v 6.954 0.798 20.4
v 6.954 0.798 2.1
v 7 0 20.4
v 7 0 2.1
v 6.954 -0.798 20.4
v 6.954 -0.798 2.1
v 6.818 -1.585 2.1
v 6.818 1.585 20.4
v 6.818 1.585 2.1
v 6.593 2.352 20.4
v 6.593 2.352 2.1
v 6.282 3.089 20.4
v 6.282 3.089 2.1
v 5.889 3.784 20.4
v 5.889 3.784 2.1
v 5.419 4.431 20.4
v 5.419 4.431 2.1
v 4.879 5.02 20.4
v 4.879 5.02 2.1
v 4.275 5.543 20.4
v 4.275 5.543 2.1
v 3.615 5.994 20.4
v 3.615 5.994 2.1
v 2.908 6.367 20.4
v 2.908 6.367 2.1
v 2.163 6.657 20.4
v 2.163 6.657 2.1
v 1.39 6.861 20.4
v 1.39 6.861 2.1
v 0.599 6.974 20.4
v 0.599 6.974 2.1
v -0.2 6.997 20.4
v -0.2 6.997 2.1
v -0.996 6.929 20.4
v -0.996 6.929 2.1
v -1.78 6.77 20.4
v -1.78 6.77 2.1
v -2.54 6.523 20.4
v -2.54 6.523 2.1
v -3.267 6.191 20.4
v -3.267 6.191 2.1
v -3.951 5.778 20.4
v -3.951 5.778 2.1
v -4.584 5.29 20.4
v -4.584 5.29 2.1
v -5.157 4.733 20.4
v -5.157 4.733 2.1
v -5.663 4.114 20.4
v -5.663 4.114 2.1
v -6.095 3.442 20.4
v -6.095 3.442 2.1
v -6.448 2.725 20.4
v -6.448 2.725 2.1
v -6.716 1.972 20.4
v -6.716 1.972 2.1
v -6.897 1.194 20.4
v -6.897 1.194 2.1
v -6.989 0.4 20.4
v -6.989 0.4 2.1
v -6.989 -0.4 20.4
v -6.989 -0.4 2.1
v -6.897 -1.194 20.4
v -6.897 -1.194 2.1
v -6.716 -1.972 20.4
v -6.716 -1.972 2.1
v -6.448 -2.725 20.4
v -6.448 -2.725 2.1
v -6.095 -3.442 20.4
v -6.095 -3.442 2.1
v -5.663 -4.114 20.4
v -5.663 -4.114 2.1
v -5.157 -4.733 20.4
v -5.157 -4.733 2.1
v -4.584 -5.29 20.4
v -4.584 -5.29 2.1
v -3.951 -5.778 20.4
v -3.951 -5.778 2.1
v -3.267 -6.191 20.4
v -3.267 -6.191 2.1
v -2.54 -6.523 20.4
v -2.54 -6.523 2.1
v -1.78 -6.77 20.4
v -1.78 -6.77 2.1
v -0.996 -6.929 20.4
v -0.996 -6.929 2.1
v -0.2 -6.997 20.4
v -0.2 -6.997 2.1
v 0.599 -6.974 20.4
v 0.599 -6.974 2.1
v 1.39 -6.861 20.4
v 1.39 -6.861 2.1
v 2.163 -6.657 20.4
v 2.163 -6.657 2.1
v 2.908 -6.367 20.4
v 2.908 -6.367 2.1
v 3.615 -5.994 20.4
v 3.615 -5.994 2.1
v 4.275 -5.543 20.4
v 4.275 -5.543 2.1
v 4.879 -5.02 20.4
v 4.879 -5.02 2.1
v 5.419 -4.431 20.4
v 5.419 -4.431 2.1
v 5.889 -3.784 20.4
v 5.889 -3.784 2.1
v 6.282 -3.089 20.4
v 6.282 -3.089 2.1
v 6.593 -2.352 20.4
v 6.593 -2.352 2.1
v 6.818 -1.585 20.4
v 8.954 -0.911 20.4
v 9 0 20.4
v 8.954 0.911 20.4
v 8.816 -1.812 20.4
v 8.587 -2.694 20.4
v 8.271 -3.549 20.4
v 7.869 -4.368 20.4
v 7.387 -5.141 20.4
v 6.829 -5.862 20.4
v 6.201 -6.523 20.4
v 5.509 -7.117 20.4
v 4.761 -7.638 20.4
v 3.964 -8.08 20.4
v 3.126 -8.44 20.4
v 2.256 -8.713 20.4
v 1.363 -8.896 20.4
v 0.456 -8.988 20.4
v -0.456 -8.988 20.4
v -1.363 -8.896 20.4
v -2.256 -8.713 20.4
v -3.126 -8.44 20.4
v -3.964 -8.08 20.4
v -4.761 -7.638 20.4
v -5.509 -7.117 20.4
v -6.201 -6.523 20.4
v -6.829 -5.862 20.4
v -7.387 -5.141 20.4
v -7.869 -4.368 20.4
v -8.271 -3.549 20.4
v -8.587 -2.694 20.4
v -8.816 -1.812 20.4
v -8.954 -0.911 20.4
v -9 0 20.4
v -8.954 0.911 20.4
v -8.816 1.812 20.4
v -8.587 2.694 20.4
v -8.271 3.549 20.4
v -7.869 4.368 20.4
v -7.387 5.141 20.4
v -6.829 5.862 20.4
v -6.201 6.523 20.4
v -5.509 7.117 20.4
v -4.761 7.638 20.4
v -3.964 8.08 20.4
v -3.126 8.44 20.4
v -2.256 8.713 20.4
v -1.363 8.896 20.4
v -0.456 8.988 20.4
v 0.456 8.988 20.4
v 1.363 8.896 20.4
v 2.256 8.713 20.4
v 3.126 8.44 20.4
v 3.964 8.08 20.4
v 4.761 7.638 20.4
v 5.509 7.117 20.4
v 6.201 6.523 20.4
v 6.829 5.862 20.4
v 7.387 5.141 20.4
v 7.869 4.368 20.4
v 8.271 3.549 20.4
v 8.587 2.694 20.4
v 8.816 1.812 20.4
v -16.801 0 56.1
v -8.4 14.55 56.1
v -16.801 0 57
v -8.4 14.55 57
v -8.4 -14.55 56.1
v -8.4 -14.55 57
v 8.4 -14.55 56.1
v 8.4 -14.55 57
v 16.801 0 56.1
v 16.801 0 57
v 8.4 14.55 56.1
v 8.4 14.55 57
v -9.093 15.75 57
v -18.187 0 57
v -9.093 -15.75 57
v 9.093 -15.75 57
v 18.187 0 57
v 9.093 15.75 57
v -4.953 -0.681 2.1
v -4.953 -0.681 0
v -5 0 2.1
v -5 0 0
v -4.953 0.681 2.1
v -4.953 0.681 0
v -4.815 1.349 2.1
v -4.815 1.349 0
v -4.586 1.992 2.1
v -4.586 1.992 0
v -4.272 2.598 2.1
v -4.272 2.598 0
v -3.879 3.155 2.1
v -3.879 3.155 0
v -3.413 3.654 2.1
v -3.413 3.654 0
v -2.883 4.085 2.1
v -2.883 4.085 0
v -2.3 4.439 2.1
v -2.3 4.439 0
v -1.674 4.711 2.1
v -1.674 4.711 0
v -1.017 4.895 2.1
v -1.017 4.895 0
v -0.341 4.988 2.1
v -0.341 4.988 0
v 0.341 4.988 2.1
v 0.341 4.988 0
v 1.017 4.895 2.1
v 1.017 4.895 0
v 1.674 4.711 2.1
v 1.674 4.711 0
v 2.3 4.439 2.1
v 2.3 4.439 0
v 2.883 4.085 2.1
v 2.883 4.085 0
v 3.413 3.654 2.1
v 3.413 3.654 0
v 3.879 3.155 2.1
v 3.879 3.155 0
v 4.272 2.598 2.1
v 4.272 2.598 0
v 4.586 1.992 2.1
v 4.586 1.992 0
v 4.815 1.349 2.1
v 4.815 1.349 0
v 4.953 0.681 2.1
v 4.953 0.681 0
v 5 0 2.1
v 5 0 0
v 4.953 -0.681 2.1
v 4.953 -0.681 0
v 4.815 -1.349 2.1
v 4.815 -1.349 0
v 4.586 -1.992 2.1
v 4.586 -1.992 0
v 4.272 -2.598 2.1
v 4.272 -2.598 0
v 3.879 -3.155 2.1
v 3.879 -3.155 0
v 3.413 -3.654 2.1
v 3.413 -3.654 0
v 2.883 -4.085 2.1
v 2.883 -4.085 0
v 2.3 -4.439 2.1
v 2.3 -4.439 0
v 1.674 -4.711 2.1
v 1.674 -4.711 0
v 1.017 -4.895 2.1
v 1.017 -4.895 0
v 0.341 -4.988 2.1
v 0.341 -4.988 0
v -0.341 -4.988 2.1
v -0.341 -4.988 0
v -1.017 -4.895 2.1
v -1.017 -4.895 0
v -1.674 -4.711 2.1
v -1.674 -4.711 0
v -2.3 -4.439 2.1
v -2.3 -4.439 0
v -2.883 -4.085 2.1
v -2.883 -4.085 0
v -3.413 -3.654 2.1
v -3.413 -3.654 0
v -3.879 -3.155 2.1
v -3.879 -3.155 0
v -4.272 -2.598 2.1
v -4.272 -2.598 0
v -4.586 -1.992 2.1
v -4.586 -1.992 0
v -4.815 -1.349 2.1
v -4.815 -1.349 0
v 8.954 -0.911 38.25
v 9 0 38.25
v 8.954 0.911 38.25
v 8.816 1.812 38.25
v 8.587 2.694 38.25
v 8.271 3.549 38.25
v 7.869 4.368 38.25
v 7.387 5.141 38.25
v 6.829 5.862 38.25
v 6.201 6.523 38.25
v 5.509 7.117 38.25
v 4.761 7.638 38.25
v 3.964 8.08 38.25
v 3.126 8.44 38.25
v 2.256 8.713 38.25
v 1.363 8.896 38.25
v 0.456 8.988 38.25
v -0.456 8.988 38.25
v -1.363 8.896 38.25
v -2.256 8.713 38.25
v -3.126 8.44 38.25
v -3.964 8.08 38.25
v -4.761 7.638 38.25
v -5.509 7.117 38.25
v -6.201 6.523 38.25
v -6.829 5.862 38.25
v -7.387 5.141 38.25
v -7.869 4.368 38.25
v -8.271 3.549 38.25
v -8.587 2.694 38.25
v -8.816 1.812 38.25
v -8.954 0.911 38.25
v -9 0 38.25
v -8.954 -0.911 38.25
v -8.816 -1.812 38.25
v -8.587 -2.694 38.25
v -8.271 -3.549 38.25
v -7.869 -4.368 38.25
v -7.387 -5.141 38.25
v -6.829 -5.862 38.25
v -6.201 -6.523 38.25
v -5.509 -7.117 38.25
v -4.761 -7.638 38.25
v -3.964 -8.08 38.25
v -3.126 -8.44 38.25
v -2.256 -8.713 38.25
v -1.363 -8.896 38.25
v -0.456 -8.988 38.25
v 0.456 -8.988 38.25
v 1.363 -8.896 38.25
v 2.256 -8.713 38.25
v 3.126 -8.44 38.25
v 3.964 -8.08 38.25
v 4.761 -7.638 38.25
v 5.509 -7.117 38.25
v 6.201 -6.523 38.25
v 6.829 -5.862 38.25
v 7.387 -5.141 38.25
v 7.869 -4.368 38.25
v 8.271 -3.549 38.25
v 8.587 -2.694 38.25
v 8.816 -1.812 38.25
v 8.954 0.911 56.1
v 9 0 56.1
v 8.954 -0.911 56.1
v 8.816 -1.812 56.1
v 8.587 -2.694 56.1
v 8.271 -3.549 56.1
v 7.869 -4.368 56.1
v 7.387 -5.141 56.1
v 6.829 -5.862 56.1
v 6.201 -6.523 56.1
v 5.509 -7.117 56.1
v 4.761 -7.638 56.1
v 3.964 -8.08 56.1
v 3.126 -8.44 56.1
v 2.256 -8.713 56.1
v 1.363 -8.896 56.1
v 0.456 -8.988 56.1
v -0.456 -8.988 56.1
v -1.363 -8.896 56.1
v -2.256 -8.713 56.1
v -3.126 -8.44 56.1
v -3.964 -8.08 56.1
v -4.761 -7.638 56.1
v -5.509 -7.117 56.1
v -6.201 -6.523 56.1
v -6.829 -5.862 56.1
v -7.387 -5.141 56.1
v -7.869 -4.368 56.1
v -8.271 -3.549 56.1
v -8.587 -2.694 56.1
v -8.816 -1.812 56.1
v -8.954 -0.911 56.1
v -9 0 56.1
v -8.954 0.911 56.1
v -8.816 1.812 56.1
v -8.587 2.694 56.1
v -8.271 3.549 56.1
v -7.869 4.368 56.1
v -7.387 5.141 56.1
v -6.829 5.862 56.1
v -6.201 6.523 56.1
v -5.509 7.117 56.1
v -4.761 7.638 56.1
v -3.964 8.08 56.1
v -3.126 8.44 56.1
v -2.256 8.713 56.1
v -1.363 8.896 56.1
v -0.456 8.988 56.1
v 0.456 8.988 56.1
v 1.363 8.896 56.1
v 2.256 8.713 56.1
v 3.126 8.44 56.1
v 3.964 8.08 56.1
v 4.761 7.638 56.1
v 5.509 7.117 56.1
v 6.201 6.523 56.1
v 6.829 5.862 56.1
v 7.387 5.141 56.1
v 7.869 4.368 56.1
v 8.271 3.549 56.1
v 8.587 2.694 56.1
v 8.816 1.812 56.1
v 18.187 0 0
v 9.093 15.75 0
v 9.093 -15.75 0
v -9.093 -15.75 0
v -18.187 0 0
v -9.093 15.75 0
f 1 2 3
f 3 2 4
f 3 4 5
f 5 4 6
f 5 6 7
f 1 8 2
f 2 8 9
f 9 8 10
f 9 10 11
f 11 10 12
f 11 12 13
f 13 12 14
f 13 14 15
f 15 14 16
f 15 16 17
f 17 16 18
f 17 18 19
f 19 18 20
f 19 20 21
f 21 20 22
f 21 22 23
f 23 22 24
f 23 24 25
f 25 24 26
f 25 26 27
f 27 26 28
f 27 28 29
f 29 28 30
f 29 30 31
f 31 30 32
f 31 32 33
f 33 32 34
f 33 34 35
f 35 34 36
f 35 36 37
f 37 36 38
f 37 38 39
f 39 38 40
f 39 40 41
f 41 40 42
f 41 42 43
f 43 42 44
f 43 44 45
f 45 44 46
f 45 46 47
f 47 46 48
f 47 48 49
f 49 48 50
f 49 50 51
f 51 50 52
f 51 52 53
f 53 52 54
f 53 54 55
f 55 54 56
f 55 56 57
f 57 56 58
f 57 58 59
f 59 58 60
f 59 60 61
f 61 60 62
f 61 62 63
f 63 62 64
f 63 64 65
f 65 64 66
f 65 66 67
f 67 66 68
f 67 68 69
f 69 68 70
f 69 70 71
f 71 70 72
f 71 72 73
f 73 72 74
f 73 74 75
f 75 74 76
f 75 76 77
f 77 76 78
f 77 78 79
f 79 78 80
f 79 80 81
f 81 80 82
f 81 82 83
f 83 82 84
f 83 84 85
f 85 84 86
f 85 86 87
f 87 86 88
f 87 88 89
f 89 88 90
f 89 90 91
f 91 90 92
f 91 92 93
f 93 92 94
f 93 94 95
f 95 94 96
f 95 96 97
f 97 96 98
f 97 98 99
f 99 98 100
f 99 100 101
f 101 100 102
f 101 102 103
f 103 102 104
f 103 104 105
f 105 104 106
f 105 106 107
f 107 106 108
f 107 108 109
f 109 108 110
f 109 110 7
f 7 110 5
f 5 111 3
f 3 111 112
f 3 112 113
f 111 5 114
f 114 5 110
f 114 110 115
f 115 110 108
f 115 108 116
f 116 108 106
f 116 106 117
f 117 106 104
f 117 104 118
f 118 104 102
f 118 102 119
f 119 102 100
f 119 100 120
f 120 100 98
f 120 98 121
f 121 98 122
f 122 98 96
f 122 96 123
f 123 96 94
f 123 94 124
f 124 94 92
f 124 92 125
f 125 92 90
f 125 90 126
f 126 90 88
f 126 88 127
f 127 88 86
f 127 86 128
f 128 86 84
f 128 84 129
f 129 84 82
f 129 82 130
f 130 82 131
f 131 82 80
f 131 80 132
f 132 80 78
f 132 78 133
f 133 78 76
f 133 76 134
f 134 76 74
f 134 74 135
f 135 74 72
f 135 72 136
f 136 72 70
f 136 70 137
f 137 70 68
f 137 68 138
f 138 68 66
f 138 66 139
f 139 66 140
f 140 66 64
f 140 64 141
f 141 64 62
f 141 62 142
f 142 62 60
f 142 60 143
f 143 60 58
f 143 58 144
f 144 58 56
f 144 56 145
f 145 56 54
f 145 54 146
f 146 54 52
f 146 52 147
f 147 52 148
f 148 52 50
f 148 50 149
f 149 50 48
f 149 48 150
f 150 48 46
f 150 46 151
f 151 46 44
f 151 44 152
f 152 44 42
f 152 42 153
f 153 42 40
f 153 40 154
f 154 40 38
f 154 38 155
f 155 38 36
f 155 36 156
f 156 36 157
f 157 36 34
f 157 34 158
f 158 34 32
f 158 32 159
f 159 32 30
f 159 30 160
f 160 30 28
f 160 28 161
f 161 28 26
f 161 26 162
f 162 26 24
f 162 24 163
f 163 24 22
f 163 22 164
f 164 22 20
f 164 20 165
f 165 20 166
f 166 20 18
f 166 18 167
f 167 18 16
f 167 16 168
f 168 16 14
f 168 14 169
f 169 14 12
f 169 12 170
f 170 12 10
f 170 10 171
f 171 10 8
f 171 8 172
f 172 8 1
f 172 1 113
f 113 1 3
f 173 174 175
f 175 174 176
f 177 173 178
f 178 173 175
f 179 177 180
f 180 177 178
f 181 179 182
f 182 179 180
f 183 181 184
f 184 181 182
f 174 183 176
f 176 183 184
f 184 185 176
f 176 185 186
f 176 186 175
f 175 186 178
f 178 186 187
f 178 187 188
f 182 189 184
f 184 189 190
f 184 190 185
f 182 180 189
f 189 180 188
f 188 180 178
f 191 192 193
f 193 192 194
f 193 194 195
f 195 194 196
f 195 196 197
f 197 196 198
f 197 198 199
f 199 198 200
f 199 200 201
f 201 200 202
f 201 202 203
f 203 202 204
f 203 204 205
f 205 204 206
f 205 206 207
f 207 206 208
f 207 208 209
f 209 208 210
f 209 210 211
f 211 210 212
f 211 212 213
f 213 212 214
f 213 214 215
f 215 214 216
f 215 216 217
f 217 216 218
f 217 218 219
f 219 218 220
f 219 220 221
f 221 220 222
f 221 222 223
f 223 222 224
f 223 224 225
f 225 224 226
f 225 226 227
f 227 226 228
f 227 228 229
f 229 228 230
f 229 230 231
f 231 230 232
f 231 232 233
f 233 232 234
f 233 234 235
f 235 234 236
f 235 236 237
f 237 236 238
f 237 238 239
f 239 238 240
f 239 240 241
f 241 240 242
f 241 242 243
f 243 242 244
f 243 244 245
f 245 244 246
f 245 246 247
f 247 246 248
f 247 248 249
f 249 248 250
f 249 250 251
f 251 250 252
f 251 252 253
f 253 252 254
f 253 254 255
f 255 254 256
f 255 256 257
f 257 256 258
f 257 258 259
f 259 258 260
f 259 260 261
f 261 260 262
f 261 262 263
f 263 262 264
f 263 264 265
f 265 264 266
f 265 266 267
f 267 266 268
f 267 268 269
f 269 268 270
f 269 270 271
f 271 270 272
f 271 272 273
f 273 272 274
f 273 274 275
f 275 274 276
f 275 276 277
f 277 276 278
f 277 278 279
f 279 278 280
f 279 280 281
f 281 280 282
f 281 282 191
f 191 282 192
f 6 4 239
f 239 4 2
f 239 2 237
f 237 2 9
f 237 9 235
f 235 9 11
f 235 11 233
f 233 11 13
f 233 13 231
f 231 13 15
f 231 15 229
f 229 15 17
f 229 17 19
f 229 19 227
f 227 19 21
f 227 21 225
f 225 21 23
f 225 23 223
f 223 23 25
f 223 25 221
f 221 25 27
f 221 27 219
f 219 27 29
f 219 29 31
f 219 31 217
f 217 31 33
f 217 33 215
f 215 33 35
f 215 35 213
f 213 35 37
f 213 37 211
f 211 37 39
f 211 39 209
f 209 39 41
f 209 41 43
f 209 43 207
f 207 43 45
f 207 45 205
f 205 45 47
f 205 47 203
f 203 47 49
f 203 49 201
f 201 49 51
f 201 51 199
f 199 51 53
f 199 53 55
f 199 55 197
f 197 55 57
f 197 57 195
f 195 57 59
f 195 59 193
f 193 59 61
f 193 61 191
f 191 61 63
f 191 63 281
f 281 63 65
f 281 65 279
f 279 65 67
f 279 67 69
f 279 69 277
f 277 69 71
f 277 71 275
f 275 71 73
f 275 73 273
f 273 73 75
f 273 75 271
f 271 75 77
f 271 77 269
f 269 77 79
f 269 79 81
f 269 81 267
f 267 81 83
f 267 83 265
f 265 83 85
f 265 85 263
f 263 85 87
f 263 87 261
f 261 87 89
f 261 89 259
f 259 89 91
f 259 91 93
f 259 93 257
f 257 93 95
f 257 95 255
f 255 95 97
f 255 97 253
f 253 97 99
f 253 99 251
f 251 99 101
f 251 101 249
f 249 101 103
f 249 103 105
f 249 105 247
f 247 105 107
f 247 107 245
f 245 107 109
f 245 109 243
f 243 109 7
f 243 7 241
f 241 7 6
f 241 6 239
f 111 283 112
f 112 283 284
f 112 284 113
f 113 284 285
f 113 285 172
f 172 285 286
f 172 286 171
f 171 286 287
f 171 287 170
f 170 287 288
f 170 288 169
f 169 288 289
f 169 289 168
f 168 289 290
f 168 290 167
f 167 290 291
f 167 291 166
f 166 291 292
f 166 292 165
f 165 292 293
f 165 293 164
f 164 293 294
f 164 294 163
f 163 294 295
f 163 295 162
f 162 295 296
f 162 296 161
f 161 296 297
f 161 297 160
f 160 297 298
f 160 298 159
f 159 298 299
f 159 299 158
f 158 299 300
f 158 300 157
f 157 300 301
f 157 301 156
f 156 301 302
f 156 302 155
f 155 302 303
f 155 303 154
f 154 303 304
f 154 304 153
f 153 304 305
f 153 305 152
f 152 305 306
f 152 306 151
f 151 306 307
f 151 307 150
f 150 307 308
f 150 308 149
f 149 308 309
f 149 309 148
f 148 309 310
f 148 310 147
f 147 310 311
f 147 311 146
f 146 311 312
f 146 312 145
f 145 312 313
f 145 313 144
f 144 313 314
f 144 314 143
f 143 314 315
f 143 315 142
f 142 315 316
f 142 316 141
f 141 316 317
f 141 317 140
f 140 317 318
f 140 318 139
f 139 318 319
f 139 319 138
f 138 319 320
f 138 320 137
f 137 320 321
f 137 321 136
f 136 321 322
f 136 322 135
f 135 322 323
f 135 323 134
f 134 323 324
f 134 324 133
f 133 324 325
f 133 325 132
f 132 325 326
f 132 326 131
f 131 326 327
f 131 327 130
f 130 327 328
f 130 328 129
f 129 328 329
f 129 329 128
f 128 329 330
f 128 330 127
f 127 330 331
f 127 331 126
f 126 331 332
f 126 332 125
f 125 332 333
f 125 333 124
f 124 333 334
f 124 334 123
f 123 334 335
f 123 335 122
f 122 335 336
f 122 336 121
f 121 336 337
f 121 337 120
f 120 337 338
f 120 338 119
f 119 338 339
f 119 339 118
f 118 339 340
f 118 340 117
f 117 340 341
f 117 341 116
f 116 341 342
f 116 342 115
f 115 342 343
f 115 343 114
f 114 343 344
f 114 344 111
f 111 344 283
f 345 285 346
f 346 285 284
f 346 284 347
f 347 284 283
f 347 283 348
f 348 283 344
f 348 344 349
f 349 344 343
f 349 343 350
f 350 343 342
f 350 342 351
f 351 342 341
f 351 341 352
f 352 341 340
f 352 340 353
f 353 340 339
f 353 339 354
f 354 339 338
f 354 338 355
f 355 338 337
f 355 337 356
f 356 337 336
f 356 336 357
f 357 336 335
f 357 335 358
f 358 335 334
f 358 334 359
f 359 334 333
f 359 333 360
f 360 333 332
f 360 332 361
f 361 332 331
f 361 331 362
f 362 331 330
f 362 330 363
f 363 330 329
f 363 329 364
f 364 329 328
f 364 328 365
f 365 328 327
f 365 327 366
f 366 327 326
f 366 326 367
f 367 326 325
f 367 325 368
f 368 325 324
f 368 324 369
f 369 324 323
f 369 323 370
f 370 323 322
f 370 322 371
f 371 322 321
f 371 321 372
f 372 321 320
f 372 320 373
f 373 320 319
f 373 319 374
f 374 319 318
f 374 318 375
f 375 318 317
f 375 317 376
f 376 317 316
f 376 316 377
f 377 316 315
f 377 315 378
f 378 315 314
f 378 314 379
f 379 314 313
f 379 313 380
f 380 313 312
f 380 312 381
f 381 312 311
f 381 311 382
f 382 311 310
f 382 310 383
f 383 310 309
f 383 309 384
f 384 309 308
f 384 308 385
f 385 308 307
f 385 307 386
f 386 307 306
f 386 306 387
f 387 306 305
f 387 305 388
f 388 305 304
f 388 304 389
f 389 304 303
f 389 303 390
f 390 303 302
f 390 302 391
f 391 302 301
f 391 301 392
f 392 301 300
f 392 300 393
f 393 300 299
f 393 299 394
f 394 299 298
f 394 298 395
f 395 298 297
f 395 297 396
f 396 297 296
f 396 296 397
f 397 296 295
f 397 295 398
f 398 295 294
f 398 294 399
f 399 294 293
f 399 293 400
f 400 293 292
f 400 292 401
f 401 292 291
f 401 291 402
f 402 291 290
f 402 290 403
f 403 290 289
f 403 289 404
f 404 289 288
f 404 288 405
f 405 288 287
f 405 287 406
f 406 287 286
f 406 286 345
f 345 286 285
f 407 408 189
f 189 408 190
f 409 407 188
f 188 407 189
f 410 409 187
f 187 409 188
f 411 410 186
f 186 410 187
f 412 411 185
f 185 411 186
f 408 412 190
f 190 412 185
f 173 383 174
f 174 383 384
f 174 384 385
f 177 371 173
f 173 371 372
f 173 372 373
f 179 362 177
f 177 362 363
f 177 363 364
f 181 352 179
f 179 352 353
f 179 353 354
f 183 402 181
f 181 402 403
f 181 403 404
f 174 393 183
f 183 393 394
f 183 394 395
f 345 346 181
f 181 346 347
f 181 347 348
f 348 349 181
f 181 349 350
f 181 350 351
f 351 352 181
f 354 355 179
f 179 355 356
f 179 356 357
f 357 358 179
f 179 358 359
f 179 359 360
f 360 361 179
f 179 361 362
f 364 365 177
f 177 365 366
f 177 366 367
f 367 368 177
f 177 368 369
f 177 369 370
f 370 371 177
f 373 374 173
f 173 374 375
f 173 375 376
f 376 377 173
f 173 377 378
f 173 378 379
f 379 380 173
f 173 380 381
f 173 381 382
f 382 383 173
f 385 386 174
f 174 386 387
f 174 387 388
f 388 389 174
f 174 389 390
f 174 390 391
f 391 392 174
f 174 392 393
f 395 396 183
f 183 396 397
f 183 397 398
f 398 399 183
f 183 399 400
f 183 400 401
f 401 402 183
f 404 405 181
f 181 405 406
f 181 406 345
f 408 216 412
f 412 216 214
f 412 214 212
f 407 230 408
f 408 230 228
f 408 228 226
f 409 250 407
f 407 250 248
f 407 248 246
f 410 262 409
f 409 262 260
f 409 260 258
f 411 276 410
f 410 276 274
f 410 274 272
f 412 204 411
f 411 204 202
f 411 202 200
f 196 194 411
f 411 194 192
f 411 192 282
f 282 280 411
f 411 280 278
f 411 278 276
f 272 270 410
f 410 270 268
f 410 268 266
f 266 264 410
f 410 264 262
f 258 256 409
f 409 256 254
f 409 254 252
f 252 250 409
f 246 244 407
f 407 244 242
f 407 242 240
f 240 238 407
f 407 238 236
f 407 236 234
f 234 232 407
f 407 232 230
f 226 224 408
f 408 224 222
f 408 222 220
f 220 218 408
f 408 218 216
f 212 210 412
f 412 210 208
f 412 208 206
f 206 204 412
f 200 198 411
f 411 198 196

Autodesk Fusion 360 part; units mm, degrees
sketch "Sketch1" plane through (0, 0, 0) normal (0, 0, 1) x (1, 0, 0)
  line L0 (-9.0933, 15.75) -> (-18.1865, 0)
  line L1 (-18.1865, 0) -> (-9.0933, -15.75)
  line L2 (-9.0933, -15.75) -> (9.0933, -15.75)
  line L3 (9.0933, -15.75) -> (18.1865, 0)
  line L4 (18.1865, 0) -> (9.0933, 15.75)
  line L5 (9.0933, 15.75) -> (-9.0933, 15.75)
  dimension "d8" = 31.5
extrude "Extrude1" add sketch "Sketch1" along normal blind 56.1
sketch "Sketch3" plane through (0, 0, 56.1) normal (0, 0, 1) x (-1, 0, 0)
  line L0 (-9.0933, -15.75) -> (9.0933, -15.75)
  line L1 (9.0933, -15.75) -> (18.1865, 0)
  line L2 (18.1865, 0) -> (9.0933, 15.75)
  line L3 (9.0933, 15.75) -> (-9.0933, 15.75)
  line L4 (-9.0933, 15.75) -> (-18.1865, 0)
  line L5 (-18.1865, 0) -> (-9.0933, -15.75)
hole "Hole1" at (0, 0, 56.1) direction (0, 0, -1) diameter 18 end through all
sketch "Sketch4" plane through (0, 0, 0) normal (0, 0, -1) x (1, 0, 0)
  circle A0 centre (0, 0) radius 9
  line L0 (-9.0933, -15.75) -> (9.0933, -15.75)
  line L1 (9.0933, -15.75) -> (18.1865, 0)
  line L2 (18.1865, 0) -> (9.0933, 15.75)
  line L3 (9.0933, 15.75) -> (-9.0933, 15.75)
  line L4 (-9.0933, 15.75) -> (-18.1865, 0)
  line L5 (-18.1865, 0) -> (-9.0933, -15.75)
  circle A1 centre (0, 0) radius 9
  circle A2 centre (0, 0) radius 5
  dimension "d12" = 10
extrude "Extrude3" add sketch "Sketch4" against normal blind 2.1 contours A0 A1
sketch "Sketch5" plane through (0, 0, 56.1) normal (0, 0, 1) x (-1, 0, 0)
  circle A0 centre (0, 0) radius 9
  line L0 (-9.0933, -15.75) -> (9.0933, -15.75)
  line L1 (9.0933, -15.75) -> (18.1865, 0)
  line L2 (18.1865, 0) -> (9.0933, 15.75)
  line L3 (9.0933, 15.75) -> (-9.0933, 15.75)
  line L4 (-9.0933, 15.75) -> (-18.1865, 0)
  line L5 (-18.1865, 0) -> (-9.0933, -15.75)
  line L6 (8.4004, -14.55) -> (16.8009, 0)
  line L7 (16.8009, 0) -> (8.4004, 14.55)
  line L8 (8.4004, 14.55) -> (-8.4004, 14.55)
  line L9 (-8.4004, 14.55) -> (-16.8009, 0)
  line L10 (-16.8009, 0) -> (-8.4004, -14.55)
  line L11 (-8.4004, -14.55) -> (8.4004, -14.55)
  dimension "d15" = 29.1
extrude "Extrude4" add sketch "Sketch5" along normal blind 0.9 contours L0 L1 L2 L3 L4 L5
sketch "Sketch6" plane through (0, 0, 0) normal (0, 0, -1) x (-1, 0, 0)
  line L0 (8.4004, -14.55) -> (-8.4004, -14.55)
  line L1 (-8.4004, -14.55) -> (-16.8009, 0)
  line L2 (-16.8009, 0) -> (-8.4004, 14.55)
  line L3 (-8.4004, 14.55) -> (8.4004, 14.55)
  line L4 (8.4004, 14.55) -> (16.8009, 0)
  line L5 (16.8009, 0) -> (8.4004, -14.55)
  line L6 (-18.1865, 0) -> (-9.0933, -15.75)
  line L7 (-9.0933, -15.75) -> (9.0933, -15.75)
  line L8 (9.0933, -15.75) -> (18.1865, 0)
  line L9 (18.1865, 0) -> (9.0933, 15.75)
  line L10 (9.0933, 15.75) -> (-9.0933, 15.75)
  line L11 (-9.0933, 15.75) -> (-18.1865, 0)
  circle A0 centre (0, 0) radius 7
  circle A1 centre (0, 0) radius 9
  circle A2 centre (0, 0) radius 5
  line L12 (9.0933, 15.75) -> (-9.0933, 15.75)
  line L13 (-9.0933, 15.75) -> (-18.1865, 0)
  line L14 (-18.1865, 0) -> (-9.0933, -15.75)
  line L15 (-9.0933, -15.75) -> (9.0933, -15.75)
  line L16 (9.0933, -15.75) -> (18.1865, 0)
  line L17 (18.1865, 0) -> (9.0933, 15.75)
  dimension "d18" = 14
extrude "Extrude5" add sketch "Sketch6" against normal blind 20.4 contours A1
equation "d8 = 29.1 mm + 2.4 mm"
